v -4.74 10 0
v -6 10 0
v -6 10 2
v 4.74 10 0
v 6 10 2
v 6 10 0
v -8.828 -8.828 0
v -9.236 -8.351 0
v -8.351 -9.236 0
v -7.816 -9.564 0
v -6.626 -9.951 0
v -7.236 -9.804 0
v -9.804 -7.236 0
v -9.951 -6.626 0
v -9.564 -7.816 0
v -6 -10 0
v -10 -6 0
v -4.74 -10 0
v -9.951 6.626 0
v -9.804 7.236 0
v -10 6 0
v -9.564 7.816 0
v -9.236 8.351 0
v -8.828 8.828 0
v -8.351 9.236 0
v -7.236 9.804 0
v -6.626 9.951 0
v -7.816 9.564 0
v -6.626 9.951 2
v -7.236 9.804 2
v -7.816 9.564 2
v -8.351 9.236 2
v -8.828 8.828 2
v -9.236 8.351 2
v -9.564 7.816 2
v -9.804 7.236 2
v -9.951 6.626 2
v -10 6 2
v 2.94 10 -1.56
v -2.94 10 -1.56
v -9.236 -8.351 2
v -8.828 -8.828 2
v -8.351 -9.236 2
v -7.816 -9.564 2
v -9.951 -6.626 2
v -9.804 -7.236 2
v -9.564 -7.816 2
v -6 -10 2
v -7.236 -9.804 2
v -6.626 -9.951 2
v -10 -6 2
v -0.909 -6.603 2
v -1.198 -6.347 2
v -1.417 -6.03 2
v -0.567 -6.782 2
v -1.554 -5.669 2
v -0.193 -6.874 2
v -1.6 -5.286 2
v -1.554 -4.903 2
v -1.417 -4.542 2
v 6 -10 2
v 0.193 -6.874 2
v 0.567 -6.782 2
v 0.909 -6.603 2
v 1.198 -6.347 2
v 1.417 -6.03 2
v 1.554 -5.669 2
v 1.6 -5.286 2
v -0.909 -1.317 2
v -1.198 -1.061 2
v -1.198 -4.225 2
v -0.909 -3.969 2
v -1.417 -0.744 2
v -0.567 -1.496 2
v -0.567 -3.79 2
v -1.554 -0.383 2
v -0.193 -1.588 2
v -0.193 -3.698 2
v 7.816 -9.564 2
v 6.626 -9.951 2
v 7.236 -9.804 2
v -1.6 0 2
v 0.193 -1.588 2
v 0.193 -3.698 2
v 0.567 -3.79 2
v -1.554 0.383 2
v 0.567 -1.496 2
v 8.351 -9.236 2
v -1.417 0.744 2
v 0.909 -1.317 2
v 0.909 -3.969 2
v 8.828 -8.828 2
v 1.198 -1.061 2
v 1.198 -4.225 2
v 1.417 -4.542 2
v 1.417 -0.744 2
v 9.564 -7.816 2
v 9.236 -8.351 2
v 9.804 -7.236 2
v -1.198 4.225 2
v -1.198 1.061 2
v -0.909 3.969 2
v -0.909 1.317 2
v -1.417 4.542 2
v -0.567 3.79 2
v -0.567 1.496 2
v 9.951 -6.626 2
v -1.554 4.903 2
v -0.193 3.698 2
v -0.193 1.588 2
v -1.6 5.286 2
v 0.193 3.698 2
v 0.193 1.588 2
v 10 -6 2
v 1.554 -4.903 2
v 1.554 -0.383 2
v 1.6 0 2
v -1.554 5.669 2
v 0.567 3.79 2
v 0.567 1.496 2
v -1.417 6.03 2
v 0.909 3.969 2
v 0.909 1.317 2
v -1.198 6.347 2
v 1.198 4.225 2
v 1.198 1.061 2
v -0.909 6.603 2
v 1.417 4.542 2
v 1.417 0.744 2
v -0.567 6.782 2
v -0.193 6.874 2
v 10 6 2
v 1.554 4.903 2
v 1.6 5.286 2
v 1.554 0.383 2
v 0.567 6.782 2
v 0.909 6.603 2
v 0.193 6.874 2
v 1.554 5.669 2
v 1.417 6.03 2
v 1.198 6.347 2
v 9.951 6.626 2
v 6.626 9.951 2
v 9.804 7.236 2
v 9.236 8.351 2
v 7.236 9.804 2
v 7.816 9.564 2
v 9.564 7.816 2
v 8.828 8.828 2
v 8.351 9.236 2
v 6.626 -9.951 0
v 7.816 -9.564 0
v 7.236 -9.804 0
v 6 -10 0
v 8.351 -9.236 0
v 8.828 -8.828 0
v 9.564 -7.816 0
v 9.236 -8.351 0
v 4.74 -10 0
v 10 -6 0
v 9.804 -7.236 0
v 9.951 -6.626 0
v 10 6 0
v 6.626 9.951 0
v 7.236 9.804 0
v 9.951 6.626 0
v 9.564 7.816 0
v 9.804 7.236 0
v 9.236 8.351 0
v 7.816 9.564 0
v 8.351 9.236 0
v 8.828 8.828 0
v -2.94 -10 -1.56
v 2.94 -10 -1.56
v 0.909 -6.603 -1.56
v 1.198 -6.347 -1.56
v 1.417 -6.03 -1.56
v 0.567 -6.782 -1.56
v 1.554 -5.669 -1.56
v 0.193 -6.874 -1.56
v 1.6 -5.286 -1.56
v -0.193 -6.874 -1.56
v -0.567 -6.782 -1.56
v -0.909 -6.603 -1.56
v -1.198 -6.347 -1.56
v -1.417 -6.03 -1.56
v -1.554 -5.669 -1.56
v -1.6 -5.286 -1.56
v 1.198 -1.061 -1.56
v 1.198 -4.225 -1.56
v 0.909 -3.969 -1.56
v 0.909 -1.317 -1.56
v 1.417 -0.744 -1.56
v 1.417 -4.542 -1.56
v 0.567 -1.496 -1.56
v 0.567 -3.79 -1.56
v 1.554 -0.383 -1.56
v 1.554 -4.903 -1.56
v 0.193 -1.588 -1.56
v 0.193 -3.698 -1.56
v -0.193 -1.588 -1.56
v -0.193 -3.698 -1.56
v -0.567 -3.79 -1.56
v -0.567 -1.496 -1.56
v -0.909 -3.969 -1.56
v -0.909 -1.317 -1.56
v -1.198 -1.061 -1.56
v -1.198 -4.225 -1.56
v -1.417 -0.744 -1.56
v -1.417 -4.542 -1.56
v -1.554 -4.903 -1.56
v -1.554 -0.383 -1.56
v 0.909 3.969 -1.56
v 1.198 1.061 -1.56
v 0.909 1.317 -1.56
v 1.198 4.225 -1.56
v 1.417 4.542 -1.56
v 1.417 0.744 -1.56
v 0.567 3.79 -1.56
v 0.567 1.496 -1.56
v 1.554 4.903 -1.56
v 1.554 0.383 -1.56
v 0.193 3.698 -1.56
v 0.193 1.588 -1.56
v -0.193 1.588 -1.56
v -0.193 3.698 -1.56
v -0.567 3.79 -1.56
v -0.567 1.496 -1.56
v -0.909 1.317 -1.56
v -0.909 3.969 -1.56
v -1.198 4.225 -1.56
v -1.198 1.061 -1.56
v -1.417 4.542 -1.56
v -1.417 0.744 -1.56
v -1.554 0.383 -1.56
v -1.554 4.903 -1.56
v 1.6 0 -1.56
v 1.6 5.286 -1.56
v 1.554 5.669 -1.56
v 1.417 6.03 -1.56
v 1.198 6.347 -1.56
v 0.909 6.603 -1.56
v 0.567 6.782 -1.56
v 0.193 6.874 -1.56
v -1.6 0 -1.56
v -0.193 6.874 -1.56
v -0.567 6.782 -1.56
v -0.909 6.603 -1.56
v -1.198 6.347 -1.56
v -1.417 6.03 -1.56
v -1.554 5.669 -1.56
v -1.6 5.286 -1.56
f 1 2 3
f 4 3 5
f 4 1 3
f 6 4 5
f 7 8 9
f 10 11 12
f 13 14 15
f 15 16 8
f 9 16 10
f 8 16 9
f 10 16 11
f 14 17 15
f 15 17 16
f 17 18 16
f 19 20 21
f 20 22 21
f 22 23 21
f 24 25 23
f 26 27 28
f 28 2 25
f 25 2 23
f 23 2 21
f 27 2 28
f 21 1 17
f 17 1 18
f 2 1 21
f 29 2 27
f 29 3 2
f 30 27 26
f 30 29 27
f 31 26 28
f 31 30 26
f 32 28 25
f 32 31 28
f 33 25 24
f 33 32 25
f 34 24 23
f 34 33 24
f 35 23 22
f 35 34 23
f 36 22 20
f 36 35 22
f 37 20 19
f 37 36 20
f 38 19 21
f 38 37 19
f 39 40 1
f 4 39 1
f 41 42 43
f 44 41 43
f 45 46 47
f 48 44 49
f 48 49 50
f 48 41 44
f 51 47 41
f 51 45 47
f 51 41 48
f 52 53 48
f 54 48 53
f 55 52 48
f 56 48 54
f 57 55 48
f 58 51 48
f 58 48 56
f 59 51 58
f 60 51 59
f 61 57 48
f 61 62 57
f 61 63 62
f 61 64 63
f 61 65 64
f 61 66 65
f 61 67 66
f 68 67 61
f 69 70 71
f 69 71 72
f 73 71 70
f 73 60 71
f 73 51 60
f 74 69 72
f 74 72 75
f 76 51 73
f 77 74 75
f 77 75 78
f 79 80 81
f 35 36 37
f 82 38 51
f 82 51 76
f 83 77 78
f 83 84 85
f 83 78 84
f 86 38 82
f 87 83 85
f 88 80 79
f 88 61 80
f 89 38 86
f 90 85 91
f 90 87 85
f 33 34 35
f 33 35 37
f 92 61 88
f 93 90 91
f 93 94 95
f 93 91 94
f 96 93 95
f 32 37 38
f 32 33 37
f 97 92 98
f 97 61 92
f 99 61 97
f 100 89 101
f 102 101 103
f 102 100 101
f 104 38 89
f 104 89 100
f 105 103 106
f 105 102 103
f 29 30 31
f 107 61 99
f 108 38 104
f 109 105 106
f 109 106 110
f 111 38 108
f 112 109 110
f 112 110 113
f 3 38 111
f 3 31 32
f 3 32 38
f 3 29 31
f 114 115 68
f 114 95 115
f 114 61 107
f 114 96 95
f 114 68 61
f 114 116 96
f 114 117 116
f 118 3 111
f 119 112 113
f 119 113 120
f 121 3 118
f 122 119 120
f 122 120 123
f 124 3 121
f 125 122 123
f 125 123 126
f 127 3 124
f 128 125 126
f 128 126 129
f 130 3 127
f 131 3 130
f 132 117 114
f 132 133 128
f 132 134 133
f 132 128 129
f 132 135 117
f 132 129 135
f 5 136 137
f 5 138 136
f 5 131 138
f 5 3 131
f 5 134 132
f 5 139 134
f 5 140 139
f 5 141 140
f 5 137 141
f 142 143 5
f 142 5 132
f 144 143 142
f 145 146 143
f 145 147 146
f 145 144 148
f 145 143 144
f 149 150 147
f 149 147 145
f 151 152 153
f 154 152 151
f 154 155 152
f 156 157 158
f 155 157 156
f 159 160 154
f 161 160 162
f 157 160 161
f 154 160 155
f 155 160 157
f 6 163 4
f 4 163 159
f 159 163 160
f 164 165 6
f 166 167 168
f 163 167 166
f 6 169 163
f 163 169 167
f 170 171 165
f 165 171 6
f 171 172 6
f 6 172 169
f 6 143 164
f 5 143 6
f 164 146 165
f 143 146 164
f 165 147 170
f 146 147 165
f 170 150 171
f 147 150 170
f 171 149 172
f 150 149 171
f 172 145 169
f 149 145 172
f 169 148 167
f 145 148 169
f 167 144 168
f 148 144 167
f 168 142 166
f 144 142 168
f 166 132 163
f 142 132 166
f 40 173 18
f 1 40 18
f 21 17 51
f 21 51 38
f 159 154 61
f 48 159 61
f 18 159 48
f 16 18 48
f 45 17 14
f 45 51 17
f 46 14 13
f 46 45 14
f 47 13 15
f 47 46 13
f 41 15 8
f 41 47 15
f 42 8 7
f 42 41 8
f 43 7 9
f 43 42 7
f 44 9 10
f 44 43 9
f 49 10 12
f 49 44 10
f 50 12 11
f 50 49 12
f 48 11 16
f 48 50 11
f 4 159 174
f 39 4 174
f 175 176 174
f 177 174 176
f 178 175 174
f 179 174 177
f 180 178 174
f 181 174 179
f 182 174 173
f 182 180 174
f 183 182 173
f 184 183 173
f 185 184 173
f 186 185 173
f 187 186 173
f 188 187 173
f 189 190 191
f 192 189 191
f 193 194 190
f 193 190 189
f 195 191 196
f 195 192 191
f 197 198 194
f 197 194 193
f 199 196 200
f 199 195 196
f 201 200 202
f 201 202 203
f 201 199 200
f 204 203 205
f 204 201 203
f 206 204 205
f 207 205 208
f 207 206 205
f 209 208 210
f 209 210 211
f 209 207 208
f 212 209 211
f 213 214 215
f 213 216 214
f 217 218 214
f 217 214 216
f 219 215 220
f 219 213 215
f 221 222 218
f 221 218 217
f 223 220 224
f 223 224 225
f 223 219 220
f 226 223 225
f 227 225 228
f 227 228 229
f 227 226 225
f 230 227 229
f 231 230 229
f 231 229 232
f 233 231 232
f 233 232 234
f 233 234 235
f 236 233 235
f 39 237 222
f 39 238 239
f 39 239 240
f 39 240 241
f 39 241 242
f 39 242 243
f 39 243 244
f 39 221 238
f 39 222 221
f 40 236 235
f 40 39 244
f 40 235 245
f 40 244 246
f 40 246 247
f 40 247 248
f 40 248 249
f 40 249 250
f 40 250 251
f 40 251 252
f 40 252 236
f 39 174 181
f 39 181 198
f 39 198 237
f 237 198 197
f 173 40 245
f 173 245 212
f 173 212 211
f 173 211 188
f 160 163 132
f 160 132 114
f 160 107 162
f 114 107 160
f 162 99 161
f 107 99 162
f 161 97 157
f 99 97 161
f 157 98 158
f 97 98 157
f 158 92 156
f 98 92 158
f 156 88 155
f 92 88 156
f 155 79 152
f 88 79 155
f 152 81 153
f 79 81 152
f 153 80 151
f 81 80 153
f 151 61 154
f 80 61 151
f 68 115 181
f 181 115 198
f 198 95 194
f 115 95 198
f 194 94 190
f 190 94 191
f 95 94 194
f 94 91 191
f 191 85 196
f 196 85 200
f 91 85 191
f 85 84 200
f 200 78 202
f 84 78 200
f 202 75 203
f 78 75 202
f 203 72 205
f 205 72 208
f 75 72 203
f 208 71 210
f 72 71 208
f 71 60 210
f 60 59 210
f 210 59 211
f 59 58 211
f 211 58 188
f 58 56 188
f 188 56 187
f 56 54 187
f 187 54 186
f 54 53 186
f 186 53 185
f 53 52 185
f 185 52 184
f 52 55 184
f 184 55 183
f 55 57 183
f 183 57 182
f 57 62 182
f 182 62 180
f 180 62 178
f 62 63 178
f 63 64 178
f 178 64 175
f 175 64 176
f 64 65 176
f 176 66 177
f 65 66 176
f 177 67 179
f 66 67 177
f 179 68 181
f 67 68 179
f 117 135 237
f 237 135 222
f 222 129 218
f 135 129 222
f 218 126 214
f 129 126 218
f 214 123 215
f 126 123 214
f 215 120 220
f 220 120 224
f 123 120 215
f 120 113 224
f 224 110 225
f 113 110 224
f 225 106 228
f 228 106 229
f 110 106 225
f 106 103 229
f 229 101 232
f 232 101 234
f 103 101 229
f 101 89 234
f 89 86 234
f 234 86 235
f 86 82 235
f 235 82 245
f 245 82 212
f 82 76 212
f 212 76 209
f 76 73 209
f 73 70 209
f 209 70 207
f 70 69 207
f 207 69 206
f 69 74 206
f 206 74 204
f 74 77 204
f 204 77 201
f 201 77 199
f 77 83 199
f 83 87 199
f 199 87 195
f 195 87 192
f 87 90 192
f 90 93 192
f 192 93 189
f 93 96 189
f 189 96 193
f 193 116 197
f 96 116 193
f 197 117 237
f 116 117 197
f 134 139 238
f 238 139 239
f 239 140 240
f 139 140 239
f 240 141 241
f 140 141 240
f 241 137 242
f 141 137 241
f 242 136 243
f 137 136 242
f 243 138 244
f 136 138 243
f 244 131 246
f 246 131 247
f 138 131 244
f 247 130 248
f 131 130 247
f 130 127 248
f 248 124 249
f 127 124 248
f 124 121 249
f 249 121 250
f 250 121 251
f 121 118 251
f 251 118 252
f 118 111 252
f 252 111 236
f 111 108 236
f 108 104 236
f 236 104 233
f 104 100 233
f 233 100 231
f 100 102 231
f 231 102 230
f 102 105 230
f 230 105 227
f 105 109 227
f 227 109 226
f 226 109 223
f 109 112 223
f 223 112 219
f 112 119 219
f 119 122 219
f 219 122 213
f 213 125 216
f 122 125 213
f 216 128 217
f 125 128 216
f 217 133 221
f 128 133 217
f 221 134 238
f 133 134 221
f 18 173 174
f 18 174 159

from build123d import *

# Parameters (mm, degrees)
SKETCH_W     = 20
SKETCH_H     = 20
PAD_DEPTH    = 2
PAD001_DEPTH = 20
SKETCH002_R  = 1.6
POCKET_DEPTH = 3.561
FILLET_R     = 4


with BuildPart() as part:
    # Sketch → Pad (new body)
    with BuildSketch(Plane.XY):
        Rectangle(SKETCH_W, SKETCH_H)
    extrude(amount=PAD_DEPTH)

    # Sketch001 (on Face1 of Pad) → Pad001 (join)
    with BuildSketch(Plane(origin=(0, 10, 0), x_dir=(-1, 0, 0), z_dir=(0, 1, 0))):
        Polygon((4.74, 0), (-4.74, 0), (-2.94, -1.56), (2.94, -1.56), align=None)
    extrude(amount=-PAD001_DEPTH)

    # Sketch002 (on Face7 of Pad001) → Pocket (cut, through all)
    with BuildSketch(Plane.XY.offset(2)):
        Circle(SKETCH002_R)
        with Locations((0, 5.286)):
            Circle(SKETCH002_R)
        with Locations((0, -5.286)):
            Circle(SKETCH002_R)
    extrude(amount=-POCKET_DEPTH, mode=Mode.SUBTRACT)

    # Fillet
    fillet_edges = [part.edges().sort_by_distance(p)[0] for p in [
        (-10, 10, 1),
        (10, 10, 1),
        (-10, -10, 1),
        (10, -10, 1),
    ]]
    fillet(fillet_edges, radius=FILLET_R)


solid = part.part
